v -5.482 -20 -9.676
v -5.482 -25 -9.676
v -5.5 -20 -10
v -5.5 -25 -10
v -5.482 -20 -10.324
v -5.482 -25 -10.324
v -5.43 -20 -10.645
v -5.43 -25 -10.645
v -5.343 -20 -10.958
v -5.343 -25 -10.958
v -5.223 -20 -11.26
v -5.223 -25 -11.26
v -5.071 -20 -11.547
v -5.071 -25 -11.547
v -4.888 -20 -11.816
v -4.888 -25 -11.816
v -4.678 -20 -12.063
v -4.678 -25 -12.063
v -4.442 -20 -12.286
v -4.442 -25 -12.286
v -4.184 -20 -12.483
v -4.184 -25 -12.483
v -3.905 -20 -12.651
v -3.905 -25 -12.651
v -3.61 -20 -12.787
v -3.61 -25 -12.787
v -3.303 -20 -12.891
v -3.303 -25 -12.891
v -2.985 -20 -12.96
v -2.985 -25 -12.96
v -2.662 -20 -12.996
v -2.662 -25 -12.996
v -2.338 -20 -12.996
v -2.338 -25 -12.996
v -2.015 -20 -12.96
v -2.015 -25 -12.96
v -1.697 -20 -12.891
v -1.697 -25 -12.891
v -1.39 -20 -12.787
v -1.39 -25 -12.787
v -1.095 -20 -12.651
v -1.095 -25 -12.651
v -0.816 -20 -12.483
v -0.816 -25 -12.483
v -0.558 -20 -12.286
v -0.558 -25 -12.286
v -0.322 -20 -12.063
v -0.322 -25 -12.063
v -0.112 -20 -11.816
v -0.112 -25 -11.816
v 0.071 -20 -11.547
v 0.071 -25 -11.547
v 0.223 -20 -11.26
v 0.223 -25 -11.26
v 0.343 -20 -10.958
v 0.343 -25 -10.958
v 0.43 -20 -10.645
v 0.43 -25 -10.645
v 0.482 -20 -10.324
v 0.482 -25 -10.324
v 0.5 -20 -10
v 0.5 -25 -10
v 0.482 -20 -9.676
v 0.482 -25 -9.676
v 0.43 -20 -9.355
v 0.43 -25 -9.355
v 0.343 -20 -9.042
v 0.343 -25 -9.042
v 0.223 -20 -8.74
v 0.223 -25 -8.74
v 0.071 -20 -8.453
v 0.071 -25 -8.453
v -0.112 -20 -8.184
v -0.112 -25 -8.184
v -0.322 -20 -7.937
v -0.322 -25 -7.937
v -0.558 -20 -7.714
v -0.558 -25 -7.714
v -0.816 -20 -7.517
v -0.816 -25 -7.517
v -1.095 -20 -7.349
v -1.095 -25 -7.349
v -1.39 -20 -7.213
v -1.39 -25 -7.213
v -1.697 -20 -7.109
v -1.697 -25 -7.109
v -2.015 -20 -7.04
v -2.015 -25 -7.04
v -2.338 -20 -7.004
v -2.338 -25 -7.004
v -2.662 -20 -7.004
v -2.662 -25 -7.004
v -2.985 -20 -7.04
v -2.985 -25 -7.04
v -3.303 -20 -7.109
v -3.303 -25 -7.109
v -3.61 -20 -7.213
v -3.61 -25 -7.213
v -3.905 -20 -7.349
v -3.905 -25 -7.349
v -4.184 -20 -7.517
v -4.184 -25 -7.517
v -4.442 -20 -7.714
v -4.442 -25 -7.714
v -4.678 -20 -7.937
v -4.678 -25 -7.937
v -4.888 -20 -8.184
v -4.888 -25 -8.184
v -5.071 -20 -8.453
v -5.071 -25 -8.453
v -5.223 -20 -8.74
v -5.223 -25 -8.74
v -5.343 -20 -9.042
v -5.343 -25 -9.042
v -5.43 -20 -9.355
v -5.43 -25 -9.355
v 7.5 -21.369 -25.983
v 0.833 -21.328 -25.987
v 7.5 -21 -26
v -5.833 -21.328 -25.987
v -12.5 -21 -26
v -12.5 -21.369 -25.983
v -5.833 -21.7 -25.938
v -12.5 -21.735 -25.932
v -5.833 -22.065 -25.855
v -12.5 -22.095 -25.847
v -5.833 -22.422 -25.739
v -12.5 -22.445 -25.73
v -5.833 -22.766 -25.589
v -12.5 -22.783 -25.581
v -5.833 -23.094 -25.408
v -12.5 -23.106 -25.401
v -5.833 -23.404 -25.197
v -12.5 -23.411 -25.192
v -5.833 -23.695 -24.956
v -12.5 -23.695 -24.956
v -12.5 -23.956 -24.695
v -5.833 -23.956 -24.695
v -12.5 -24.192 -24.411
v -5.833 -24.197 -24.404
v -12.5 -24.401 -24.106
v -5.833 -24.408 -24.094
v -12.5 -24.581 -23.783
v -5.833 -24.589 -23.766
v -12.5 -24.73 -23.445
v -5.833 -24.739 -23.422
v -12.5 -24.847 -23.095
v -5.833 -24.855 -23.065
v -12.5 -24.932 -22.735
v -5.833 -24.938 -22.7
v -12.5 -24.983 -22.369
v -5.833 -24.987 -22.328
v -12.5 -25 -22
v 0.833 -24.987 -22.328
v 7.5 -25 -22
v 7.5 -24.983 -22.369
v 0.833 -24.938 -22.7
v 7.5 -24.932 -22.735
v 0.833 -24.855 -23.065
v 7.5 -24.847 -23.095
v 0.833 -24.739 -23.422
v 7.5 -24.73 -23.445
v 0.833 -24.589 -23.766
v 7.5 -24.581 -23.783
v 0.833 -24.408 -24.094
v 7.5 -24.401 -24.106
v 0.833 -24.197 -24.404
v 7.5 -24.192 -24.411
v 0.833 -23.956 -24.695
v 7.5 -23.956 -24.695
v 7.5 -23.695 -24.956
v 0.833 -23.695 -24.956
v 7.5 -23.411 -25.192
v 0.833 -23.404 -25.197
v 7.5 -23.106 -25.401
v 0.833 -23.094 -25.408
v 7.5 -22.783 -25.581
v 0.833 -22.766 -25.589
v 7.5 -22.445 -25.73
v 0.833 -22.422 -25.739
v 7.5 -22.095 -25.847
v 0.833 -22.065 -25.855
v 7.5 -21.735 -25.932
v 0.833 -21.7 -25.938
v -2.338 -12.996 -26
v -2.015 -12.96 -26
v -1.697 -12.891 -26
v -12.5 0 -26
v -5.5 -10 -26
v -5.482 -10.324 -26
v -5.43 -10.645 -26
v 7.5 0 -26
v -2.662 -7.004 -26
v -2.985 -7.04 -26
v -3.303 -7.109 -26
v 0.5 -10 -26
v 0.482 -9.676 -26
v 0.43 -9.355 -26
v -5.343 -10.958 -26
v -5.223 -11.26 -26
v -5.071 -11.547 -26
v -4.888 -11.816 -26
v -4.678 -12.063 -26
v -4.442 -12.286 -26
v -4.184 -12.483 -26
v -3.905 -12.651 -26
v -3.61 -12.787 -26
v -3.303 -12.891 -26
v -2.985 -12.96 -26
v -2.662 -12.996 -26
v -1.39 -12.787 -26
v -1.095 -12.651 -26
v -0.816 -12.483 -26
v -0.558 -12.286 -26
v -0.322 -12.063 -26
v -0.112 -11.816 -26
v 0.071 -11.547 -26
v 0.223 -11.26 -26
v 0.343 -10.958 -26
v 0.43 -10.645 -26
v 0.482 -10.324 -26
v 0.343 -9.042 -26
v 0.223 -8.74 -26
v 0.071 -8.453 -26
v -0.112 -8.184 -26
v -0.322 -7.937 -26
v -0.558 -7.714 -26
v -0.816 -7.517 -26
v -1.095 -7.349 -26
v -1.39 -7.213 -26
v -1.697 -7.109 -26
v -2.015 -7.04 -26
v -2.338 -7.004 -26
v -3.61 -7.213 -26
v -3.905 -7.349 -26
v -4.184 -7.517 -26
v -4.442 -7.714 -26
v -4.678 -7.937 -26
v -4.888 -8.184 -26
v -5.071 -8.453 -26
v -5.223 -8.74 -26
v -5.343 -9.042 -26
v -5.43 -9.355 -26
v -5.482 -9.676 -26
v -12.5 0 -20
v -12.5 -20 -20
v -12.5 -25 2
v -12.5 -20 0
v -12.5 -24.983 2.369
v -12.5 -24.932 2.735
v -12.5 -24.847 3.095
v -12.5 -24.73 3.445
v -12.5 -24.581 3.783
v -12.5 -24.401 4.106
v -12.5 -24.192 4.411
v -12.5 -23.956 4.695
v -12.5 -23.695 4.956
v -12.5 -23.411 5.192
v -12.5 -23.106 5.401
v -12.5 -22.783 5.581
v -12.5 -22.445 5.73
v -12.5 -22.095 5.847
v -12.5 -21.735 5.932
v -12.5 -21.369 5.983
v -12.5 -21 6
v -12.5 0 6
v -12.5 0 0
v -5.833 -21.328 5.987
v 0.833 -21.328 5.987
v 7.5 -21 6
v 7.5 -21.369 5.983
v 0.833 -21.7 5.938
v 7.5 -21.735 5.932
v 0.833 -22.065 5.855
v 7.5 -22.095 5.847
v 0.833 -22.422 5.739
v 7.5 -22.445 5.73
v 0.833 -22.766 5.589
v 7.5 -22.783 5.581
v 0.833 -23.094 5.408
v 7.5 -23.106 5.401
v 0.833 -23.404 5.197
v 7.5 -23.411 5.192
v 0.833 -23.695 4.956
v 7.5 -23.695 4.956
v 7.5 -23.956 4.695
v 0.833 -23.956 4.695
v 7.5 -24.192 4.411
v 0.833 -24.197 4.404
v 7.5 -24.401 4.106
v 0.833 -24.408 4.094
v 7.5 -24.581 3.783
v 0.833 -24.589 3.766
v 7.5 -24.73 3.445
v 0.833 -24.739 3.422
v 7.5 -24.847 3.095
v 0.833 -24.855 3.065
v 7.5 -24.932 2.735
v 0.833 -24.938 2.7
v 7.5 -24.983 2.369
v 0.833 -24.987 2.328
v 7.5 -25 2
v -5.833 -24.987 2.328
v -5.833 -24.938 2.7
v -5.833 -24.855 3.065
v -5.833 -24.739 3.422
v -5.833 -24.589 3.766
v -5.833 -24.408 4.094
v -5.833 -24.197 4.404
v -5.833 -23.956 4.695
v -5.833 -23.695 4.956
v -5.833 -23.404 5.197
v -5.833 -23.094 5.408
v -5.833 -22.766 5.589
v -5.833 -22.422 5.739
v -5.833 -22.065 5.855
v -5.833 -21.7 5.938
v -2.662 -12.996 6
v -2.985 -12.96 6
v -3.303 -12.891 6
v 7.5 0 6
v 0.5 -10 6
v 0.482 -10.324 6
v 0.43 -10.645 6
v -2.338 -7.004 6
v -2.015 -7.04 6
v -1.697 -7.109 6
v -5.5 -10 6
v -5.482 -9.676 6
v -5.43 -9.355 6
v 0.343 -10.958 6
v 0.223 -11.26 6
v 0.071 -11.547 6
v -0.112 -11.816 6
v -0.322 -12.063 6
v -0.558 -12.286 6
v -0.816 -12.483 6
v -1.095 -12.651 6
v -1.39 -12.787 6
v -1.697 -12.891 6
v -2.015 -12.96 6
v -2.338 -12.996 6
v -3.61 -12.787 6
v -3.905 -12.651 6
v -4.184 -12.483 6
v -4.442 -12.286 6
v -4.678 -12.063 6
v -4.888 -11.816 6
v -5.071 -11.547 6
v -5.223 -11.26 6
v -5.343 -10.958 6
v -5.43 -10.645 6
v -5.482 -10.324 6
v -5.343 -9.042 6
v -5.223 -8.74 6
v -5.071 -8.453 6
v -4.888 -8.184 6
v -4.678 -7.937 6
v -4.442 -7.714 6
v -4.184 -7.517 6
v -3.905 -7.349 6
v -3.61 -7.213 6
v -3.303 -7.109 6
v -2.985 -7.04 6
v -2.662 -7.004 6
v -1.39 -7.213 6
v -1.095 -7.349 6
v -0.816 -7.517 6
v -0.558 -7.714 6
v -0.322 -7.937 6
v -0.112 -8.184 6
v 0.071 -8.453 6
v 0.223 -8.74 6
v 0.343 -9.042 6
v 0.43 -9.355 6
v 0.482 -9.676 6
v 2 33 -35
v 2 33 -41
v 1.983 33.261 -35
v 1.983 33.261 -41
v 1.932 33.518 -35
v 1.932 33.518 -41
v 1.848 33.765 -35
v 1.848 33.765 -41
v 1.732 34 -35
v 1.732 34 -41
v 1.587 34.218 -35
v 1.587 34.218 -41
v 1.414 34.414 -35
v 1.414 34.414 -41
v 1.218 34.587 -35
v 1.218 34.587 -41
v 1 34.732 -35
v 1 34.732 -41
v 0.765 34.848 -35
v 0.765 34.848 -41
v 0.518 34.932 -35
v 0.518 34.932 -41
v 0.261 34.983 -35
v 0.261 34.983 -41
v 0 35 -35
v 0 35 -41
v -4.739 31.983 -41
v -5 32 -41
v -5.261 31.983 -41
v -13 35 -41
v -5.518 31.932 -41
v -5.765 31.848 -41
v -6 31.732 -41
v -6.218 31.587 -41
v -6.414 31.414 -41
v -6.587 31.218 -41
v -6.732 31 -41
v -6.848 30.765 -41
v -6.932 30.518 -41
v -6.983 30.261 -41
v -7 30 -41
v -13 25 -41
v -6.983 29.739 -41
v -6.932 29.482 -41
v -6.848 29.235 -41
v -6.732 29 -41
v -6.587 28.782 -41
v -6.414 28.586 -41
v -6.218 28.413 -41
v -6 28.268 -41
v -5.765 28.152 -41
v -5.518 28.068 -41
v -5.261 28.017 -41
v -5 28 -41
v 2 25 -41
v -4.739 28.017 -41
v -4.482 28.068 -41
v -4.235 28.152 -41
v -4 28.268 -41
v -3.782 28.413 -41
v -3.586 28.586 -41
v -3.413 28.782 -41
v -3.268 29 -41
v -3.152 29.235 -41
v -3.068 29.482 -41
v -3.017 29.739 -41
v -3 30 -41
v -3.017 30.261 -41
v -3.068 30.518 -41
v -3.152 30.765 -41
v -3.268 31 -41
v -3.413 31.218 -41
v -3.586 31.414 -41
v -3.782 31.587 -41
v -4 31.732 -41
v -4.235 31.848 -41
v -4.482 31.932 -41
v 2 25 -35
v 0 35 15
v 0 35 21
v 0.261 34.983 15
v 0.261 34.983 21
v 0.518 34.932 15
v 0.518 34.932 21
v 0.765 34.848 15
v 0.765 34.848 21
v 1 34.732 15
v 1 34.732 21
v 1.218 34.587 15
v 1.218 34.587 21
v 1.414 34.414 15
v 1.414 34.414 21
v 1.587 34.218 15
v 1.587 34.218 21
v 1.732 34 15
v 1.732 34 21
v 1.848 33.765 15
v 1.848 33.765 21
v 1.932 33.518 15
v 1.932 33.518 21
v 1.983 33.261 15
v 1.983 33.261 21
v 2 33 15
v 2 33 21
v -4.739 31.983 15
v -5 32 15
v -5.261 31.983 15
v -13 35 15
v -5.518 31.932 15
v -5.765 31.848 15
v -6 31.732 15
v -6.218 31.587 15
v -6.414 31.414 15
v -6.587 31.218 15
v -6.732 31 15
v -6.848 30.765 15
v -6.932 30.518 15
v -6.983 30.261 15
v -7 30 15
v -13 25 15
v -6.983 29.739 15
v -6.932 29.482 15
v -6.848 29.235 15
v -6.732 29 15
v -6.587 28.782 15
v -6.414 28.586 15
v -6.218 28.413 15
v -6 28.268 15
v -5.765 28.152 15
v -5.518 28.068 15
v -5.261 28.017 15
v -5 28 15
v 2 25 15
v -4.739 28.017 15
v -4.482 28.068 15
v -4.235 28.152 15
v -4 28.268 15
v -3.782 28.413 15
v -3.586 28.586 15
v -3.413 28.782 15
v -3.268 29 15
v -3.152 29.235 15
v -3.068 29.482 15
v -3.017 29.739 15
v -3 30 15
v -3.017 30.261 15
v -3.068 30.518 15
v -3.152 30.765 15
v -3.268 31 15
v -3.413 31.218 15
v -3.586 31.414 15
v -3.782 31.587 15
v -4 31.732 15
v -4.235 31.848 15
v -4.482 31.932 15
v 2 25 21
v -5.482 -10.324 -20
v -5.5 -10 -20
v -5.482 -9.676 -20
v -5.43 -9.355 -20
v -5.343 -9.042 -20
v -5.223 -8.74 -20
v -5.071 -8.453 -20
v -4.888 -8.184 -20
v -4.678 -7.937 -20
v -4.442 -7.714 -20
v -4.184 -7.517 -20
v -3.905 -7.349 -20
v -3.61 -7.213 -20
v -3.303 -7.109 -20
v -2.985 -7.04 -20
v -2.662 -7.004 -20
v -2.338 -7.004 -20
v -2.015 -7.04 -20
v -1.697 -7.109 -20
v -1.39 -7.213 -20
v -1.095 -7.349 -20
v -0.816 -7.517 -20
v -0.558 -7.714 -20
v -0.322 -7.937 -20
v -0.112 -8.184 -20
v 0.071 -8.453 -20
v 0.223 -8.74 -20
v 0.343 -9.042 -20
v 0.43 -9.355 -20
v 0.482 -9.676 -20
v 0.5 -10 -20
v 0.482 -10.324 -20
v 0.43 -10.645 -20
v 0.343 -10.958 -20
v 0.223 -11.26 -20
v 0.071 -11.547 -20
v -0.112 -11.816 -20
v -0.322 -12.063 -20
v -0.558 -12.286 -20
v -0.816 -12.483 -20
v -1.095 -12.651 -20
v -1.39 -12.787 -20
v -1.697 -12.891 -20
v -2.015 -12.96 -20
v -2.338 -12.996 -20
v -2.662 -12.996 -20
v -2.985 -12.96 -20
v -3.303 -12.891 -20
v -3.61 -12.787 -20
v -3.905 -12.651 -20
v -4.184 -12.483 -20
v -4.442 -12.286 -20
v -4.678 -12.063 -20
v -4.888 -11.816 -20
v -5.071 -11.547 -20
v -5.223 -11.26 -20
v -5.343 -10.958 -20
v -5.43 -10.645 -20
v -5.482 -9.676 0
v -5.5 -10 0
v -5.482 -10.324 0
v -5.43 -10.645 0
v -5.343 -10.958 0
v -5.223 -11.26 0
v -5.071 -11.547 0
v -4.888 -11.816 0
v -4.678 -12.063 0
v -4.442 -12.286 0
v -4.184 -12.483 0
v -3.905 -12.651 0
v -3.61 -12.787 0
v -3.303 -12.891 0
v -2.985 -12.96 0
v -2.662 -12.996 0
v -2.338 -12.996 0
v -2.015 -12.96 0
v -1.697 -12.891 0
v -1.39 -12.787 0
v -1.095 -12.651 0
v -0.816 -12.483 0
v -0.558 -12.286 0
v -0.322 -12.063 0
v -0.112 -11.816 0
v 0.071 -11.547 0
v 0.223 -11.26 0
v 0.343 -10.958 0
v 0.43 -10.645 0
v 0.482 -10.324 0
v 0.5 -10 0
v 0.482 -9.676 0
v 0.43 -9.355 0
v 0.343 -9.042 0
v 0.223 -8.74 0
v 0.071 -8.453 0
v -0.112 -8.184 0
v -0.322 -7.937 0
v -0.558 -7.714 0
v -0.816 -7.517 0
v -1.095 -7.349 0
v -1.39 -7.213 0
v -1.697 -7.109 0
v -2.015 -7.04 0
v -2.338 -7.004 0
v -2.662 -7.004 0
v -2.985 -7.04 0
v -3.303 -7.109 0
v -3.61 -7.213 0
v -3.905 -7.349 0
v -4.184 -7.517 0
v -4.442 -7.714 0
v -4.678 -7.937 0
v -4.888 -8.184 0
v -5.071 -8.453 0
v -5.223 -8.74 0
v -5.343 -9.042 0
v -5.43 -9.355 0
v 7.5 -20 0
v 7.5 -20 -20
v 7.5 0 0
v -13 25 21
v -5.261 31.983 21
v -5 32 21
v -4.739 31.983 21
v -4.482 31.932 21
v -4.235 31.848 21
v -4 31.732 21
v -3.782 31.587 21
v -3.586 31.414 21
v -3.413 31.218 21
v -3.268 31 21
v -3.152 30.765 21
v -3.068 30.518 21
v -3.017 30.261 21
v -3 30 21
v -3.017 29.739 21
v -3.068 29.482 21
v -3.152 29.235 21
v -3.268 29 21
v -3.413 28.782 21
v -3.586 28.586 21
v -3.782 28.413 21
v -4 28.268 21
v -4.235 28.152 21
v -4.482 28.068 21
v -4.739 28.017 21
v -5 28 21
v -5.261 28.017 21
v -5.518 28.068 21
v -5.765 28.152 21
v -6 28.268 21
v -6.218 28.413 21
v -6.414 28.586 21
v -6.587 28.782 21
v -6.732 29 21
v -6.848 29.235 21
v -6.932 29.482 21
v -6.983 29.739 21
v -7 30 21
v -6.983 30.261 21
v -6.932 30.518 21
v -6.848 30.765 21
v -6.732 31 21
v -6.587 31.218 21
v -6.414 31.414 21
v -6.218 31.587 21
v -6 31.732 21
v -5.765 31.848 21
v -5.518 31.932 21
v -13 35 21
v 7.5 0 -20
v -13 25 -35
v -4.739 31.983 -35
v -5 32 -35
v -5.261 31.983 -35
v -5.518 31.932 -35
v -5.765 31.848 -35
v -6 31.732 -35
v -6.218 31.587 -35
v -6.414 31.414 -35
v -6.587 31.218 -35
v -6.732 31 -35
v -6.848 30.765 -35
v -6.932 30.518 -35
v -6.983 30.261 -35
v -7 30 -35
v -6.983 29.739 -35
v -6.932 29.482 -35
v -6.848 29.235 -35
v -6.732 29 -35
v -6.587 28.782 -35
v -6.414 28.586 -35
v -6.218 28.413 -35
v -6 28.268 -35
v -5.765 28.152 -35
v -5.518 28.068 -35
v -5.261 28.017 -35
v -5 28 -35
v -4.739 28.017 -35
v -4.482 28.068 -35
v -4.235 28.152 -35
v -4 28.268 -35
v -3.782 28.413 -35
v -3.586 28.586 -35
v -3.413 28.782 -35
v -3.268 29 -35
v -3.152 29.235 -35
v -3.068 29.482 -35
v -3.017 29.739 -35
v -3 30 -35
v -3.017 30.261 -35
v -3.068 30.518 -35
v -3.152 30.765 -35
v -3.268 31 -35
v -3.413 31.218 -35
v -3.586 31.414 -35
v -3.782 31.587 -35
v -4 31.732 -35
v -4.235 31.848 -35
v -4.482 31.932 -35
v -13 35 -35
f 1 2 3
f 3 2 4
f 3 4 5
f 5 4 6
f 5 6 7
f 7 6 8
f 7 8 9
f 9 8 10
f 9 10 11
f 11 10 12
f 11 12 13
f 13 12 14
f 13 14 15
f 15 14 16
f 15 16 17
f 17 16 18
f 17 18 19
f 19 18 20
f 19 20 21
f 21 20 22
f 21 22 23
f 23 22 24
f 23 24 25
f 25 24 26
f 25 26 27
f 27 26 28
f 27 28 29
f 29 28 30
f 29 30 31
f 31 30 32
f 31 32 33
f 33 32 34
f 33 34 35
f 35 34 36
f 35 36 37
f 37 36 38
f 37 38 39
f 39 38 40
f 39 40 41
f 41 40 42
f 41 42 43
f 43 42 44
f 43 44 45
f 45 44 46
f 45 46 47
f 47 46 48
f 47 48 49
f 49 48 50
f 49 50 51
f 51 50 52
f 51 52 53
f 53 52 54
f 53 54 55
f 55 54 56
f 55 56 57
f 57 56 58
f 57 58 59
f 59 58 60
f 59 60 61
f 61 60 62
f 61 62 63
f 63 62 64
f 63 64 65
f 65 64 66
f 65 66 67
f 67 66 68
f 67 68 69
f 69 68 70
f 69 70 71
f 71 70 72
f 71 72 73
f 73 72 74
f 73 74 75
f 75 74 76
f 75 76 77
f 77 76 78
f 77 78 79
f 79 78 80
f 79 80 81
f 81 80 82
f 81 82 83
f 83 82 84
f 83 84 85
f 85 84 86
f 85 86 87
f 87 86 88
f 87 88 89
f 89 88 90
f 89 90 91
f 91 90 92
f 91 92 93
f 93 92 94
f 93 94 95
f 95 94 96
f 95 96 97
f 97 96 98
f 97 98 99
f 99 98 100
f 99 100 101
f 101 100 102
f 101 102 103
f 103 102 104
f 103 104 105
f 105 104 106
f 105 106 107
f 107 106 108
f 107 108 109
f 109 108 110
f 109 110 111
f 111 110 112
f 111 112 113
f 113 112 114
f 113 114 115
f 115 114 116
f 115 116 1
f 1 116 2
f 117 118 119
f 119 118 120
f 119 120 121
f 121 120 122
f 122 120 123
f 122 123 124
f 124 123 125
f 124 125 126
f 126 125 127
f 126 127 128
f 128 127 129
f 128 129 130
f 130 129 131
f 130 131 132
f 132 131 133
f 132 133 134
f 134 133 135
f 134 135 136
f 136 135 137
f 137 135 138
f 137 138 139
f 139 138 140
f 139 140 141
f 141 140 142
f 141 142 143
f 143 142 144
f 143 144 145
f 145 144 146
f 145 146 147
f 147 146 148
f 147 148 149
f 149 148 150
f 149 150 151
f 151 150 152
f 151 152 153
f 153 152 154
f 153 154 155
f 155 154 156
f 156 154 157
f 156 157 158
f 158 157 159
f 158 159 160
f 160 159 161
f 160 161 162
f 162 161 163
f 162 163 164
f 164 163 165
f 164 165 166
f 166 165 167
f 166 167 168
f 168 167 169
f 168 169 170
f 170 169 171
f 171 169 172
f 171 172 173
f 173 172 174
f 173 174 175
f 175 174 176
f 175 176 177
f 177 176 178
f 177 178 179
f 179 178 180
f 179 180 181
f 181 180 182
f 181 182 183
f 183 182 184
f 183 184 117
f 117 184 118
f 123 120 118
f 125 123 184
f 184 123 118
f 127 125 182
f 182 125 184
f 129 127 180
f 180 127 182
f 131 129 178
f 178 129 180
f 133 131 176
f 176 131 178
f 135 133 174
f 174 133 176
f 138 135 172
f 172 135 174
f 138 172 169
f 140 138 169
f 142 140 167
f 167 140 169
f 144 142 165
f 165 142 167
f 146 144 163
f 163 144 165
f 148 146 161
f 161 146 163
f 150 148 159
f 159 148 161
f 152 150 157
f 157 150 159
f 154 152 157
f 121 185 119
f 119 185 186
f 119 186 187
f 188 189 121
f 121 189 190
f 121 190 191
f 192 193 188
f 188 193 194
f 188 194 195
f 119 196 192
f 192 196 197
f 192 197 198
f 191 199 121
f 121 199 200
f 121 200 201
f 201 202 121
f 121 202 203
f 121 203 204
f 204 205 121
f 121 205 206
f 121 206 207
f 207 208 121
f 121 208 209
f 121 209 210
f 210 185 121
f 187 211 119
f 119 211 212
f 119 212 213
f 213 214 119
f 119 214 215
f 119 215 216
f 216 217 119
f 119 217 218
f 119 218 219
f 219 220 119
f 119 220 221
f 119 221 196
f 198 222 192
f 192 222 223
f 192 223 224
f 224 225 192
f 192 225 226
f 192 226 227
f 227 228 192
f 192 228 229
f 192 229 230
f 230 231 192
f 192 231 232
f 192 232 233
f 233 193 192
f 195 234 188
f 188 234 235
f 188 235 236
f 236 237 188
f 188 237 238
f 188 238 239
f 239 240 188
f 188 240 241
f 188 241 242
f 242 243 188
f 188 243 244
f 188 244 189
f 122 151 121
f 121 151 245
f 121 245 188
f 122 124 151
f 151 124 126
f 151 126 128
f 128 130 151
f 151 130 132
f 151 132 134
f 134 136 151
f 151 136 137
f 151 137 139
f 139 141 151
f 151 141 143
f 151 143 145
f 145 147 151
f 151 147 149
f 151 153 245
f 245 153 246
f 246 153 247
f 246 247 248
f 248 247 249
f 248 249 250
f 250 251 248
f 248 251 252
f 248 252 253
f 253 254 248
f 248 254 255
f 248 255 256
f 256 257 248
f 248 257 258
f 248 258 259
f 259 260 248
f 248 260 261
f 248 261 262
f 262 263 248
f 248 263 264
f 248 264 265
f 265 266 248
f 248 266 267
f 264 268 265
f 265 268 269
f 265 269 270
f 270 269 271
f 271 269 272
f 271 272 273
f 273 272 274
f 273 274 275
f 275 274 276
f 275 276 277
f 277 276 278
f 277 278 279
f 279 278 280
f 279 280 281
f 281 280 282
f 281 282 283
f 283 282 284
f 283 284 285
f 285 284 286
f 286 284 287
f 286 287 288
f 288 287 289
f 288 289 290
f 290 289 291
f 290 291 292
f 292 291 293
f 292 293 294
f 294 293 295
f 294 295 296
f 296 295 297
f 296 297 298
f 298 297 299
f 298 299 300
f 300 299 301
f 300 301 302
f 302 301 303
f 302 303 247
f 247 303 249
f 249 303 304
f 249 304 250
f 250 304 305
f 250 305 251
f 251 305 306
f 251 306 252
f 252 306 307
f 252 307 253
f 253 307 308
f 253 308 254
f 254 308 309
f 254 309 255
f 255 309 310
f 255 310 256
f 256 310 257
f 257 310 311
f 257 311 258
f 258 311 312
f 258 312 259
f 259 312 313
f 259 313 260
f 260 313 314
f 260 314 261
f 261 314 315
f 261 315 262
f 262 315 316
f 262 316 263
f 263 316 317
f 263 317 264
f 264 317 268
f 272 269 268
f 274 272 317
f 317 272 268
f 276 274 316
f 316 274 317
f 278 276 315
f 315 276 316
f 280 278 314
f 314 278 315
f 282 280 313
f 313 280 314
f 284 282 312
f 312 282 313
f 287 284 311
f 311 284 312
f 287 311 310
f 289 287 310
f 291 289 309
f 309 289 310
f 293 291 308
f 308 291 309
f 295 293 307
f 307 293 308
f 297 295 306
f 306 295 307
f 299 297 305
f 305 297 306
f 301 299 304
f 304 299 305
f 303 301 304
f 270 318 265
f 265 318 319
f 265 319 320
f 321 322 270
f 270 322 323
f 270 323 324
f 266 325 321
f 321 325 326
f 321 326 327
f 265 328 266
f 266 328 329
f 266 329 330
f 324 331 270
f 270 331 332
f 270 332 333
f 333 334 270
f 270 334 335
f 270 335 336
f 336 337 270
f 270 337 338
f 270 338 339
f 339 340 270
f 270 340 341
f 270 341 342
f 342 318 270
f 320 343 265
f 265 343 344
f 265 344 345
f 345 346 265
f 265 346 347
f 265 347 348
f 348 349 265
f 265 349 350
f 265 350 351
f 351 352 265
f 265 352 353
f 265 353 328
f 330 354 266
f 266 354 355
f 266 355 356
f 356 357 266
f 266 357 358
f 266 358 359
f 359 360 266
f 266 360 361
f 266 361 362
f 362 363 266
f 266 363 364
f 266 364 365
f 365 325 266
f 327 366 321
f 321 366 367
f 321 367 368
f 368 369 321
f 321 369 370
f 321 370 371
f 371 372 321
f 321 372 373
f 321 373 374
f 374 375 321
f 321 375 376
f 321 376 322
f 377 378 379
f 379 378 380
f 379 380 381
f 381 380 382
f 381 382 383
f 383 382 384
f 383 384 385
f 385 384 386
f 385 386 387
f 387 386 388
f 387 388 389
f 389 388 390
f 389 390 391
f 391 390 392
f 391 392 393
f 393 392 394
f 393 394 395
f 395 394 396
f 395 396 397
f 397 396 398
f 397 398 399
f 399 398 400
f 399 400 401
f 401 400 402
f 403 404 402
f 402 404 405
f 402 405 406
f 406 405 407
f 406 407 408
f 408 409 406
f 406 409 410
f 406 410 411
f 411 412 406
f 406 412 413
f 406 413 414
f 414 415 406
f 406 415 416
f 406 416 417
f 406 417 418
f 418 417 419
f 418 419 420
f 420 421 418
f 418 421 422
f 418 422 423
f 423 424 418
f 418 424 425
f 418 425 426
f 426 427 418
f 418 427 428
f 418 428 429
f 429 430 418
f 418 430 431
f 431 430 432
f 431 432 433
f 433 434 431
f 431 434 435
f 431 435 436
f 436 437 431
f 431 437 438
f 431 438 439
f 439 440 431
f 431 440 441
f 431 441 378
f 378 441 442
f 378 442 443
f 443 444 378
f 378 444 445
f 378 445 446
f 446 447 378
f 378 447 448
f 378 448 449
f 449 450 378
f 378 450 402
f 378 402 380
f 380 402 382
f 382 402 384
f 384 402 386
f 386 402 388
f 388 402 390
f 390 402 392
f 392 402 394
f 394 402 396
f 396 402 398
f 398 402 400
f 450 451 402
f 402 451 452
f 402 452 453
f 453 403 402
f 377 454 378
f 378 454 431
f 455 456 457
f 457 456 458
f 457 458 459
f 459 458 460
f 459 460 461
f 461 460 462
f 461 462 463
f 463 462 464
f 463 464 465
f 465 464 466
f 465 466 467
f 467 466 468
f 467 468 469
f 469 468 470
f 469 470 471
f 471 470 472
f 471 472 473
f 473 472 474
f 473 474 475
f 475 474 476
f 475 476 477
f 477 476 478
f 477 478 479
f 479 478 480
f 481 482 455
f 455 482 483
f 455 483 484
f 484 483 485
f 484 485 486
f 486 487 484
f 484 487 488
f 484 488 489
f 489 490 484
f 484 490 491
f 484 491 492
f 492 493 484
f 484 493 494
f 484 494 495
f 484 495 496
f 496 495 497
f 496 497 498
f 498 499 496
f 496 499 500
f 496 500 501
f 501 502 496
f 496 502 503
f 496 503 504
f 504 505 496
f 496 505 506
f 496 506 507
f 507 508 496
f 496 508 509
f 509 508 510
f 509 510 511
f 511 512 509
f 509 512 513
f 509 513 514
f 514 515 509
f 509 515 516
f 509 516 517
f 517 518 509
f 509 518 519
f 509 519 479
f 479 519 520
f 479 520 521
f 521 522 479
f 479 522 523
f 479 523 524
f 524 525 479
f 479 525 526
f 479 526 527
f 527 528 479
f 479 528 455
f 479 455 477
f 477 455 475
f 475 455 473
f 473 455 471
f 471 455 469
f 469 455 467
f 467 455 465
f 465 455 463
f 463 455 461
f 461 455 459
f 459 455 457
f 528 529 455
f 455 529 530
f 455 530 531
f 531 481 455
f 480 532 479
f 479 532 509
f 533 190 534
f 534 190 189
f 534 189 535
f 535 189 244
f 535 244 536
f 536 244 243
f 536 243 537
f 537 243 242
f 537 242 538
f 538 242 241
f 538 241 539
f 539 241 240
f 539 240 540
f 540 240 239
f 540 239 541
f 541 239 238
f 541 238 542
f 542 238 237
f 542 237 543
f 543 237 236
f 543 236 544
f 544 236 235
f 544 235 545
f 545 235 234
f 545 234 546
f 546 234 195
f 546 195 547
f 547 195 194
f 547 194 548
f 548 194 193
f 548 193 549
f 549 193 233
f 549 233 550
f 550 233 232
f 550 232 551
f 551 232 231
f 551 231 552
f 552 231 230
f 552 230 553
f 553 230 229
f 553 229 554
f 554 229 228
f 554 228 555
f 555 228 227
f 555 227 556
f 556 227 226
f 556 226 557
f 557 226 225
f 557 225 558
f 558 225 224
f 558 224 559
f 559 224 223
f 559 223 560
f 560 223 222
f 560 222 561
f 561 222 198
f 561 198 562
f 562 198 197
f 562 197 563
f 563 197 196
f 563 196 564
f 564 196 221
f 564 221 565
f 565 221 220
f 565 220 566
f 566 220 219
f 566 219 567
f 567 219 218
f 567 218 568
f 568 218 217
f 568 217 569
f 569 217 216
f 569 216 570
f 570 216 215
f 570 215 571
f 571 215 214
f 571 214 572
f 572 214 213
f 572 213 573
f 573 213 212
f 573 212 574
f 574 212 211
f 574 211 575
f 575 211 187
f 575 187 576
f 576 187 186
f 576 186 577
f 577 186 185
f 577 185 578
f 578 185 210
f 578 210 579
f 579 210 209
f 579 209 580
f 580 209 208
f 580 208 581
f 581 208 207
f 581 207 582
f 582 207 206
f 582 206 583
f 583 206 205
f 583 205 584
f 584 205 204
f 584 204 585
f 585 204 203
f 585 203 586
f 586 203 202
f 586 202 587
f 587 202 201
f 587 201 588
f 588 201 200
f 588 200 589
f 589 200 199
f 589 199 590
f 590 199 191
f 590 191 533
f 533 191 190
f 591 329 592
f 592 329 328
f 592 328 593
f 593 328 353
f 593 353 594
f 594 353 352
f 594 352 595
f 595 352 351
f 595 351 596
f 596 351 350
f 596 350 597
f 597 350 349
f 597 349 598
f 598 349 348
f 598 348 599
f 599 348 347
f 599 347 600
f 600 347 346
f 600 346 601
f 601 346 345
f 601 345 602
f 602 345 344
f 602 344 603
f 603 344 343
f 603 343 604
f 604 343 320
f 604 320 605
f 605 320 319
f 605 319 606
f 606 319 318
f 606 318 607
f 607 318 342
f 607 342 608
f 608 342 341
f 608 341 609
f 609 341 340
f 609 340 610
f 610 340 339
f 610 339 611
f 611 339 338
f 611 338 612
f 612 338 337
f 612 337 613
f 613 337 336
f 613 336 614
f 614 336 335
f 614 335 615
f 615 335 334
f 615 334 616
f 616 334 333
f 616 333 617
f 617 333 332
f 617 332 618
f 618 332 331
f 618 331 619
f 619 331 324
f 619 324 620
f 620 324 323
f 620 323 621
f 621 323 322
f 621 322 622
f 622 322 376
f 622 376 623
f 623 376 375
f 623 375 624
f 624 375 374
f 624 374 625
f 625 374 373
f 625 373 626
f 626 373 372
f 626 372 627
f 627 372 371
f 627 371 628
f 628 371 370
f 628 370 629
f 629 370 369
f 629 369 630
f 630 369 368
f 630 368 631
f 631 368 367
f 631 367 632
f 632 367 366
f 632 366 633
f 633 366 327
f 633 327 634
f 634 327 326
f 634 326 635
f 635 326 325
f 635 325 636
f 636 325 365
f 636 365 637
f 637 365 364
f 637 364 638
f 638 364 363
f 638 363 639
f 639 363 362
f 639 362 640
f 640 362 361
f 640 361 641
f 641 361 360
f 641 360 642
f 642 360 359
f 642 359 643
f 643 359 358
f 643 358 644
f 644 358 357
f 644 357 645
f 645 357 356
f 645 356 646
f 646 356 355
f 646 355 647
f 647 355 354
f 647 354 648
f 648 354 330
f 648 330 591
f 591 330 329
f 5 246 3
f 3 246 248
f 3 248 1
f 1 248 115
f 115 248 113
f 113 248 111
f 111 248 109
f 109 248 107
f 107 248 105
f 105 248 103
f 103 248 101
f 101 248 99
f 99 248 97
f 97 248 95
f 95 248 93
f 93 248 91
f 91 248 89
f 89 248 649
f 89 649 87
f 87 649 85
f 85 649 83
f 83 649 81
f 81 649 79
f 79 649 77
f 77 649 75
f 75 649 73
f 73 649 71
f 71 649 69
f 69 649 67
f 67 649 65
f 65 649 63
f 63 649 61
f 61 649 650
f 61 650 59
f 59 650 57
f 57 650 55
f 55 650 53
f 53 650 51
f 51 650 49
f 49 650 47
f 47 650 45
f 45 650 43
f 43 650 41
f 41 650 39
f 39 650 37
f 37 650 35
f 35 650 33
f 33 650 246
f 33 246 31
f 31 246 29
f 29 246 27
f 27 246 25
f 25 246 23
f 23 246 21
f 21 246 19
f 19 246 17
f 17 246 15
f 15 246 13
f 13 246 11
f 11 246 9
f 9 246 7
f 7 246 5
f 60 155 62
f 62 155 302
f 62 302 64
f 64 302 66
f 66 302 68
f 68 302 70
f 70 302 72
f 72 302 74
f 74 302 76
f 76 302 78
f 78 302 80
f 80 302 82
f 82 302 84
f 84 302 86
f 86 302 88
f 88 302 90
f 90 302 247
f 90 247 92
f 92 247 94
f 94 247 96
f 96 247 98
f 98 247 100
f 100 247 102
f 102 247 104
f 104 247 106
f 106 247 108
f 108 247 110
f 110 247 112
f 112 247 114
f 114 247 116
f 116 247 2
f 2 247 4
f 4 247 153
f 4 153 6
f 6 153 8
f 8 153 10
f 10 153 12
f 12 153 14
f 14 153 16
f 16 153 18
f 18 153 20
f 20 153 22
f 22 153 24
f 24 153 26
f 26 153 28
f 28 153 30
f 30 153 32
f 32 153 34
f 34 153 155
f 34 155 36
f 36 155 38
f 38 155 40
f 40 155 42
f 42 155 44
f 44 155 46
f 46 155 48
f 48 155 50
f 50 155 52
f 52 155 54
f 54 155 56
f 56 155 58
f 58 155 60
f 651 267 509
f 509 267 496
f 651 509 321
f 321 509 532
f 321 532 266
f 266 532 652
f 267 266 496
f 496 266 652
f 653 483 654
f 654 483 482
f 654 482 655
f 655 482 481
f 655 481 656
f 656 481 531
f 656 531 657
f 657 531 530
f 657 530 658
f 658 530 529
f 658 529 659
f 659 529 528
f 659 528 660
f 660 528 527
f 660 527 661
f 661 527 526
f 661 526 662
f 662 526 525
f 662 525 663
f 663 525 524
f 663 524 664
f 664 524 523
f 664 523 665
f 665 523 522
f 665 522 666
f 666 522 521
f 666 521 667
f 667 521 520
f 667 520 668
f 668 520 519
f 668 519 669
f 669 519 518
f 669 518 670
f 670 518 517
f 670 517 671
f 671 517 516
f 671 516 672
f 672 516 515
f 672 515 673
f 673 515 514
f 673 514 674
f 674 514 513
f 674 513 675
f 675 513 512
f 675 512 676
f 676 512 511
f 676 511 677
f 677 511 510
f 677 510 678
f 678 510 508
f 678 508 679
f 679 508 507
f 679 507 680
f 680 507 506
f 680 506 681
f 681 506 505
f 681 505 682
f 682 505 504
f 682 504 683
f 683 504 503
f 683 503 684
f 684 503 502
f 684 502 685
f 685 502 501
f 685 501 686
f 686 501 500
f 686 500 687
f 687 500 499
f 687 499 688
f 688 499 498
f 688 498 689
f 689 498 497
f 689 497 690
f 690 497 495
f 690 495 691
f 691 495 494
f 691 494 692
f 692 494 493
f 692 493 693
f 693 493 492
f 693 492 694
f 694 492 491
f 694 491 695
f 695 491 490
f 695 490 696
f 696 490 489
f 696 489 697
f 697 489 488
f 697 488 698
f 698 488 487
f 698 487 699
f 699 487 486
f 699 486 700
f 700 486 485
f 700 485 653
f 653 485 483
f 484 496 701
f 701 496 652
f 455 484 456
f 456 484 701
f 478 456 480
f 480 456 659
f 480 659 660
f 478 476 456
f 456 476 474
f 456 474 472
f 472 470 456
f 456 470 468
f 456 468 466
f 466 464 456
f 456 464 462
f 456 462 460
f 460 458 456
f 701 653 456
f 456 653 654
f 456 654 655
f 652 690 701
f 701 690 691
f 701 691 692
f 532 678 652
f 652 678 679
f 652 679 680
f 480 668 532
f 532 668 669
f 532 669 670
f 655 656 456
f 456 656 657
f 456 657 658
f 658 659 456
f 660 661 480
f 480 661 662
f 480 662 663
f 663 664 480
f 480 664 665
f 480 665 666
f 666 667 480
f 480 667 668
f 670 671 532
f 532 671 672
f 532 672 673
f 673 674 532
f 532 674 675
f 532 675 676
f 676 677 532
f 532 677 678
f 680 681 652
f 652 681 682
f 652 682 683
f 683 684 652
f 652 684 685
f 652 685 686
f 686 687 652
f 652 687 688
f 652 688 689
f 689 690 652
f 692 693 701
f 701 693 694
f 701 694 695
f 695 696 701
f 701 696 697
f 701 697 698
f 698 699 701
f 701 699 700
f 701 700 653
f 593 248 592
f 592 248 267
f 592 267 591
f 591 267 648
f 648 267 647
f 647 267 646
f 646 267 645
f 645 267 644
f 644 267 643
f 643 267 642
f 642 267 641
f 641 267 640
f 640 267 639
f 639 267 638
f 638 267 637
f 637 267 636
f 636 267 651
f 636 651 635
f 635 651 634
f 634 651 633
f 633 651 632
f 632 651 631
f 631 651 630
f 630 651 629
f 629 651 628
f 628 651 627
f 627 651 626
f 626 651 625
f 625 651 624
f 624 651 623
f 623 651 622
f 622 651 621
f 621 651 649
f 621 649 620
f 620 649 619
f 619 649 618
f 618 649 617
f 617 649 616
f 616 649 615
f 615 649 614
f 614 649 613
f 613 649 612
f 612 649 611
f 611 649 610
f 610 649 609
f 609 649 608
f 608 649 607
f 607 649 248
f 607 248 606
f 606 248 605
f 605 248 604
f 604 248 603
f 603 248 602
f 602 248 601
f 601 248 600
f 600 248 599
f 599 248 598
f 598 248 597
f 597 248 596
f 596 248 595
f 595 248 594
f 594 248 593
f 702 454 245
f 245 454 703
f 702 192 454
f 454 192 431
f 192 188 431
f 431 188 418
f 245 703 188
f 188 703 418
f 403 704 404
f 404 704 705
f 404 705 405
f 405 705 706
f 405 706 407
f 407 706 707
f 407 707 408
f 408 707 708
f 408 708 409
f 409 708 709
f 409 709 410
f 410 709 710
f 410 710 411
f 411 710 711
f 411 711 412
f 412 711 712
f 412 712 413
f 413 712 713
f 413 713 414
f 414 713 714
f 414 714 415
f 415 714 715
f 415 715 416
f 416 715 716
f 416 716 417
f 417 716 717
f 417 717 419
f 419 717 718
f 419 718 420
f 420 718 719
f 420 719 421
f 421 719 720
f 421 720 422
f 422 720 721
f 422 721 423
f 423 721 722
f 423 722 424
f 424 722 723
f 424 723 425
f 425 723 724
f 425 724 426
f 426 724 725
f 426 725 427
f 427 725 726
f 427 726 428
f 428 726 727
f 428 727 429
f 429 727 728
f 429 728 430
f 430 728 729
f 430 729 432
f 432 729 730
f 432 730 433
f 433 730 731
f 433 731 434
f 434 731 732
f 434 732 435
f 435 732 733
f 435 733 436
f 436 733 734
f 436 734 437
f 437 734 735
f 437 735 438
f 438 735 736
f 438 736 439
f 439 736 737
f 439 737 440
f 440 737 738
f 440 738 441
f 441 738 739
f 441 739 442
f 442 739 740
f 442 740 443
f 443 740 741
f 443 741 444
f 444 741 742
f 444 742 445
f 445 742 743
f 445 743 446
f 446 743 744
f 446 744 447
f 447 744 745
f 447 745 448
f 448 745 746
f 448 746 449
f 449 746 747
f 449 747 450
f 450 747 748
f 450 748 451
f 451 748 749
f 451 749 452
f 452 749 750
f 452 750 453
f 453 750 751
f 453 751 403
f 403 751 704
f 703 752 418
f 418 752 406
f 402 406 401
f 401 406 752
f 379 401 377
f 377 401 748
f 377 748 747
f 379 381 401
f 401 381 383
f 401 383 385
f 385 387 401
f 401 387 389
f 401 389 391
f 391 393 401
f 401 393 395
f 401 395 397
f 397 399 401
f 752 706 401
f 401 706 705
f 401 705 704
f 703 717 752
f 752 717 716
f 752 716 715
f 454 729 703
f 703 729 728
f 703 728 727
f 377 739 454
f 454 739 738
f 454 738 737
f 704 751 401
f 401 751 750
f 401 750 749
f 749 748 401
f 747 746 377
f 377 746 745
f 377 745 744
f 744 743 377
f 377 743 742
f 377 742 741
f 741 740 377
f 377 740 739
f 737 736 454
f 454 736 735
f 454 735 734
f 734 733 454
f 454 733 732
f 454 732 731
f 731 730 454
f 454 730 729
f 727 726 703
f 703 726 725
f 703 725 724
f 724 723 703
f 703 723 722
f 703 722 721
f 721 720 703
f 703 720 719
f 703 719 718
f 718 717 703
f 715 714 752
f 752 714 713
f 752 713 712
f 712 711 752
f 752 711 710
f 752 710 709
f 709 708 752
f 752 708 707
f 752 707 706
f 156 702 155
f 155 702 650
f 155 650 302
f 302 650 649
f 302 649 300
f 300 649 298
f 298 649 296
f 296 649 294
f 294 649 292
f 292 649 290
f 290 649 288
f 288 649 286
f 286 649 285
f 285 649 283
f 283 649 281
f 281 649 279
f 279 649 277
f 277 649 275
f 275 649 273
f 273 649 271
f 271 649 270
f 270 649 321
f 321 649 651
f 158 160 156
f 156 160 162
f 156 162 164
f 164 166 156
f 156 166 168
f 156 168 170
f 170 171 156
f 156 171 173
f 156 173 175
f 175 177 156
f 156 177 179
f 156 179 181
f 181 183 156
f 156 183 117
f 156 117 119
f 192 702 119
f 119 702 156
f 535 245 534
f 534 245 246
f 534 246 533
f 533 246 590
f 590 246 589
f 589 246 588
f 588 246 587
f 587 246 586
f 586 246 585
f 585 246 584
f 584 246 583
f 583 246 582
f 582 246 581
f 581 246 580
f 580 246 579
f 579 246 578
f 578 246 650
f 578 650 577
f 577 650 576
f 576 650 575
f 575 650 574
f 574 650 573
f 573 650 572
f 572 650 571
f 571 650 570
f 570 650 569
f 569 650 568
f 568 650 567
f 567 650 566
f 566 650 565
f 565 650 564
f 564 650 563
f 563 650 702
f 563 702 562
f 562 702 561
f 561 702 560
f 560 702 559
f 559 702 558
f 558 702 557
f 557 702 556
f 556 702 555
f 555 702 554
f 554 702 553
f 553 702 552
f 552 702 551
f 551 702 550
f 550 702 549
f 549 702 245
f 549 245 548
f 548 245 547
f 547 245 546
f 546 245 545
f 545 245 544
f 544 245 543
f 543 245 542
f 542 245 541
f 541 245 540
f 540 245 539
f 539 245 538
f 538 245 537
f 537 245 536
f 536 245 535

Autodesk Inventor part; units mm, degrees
ref_plane "YZ Plane" through (0, 0, 0) normal (1, 0, 0) x (0, 1, 0)
ref_plane "XZ Plane" through (0, 0, 0) normal (0, 1, 0) x (-1, 0, 0)
ref_plane "XY Plane" through (0, 0, 0) normal (0, 0, 1) x (1, 0, 0)
sketch "Sketch1" plane through (0, 0, 0) normal (0, 0, 1) x (1, 0, 0)
  circle A0 centre (-47.5, -10) radius 3 projected
  circle A1 centre (-5, 30) radius 2 projected
  line L0 (-47.5, -10) -> (-2.5, -10)
  line L1 (7.5, 0) -> (-12.5, 0)
  line L2 (-12.5, 0) -> (-12.5, -20)
  line L3 (-12.5, -20) -> (7.5, -20)
  line L4 (7.5, -20) -> (7.5, 0)
  line L5 (7.5, 0) -> (-12.5, -20) construction
  line L6 (-12.5, 0) -> (7.5, -20) construction
  point P0 (0, 0)
  dimension "d0" = 45
  dimension "d1" = 20
  dimension "d2" = 20
extrude "Extrusion1" add sketch "Sketch1" along normal blind 6 contours L4 L3 L2 L1
ref_plane "Work Plane1" through (0, 0, -20) normal (0, 0, -1) x (-1, 0, 0)
sketch "Sketch2" plane through (0, 0, -20) normal (0, 0, -1) x (-1, 0, 0)
  line L0 (-7.5, -20) -> (-7.5, 0) projected
  line L1 (-7.5, 0) -> (12.5, 0) projected
  line L2 (12.5, 0) -> (12.5, -20) projected
  line L3 (12.5, -20) -> (-7.5, -20) projected
  point P0 (0, 0)
  dimension "d0" = 45
  dimension "d1" = 20
  dimension "d2" = 20
extrude "Extrusion2" add sketch "Sketch2" along normal blind 6
ref_plane "Work Plane2" through (-8, 25, 15) normal (0, 0, 1) x (0, 1, 0)
sketch "Sketch3" plane through (-8, 25, 15) normal (0, 0, 1) x (0, 1, 0)
  circle A0 centre (5, -3) radius 2 projected
  arc A1 (8, -10) -> (10, -8) centre (8, -8) ccw projected
  line L0 (10, -8) -> (10, -3) projected
  line L1 (10, -3) -> (10, 5) projected
  line L2 (0, 5) -> (10, 5) projected
  line L3 (0, 5) -> (0, -3) projected
  line L4 (0, -3) -> (0, -8) projected
  arc A2 (0, -8) -> (2, -10) centre (2, -8) ccw projected
  line L5 (8, -10) -> (2, -10) projected
  circle A3 centre (5, -3) radius 2 projected
  line L6 (0, 4) -> (10, 4)
  line L7 (10, 4) -> (10, -10)
  line L8 (10, -10) -> (0, -10)
  line L9 (0, -10) -> (0, 4)
  line L10 (0, 4) -> (10, -10) construction
  line L11 (10, 4) -> (0, -10) construction
  point P0 (-25, -8)
  point P1 (0, -8)
  point P2 (2, -10)
  point P3 (10, -8)
  dimension "d7" = 10
  dimension "d8" = 14
extrude "Extrusion3" add sketch "Sketch3" along normal blind 6
sketch "Sketch4" plane through (-13, 25, 15) normal (0, -1, 0) x (1, 0, 0)
  line L0 (0, 0) -> (15, 0) projected
  line L1 (15, 0) -> (15, 6) projected
  line L2 (0, 6) -> (15, 6) projected
  line L3 (0, 0) -> (0, 6) projected
  point P0 (13, -15)
sketch "Sketch5" plane through (-12.5, 0, 0) normal (0, 1, 0) x (1, 0, 0)
  line L0 (20, 0) -> (0, 0) projected
  line L1 (0, 0) -> (0, -6) projected
  line L2 (20, -6) -> (0, -6) projected
  line L3 (20, 0) -> (20, -6) projected
  point P0 (12.5, 0)
loft "Loft1" add section 1 edges at (-2.5, 0, 0) (-12.5, 0, 3) (-2.5, 0, 6) (7.5, 0, 3) section 2 edges at (-5.5, 25, 15) (2, 25, 18) (-5.5, 25, 21) (-13, 25, 18)
ref_plane "Work Plane3" through (0, 0, -10) normal (0, 0, 1) x (1, 0, 0)
mirror "Mirror1" about plane through (0, 0, -10) normal (0, 0, 1) of "Extrusion3", "Loft1"
sketch "Sketch7" plane through (-12.5, -20, 0) normal (0, -1, 0) x (1, 0, 0)
  line L0 (0, 0) -> (20, 0) projected
  line L1 (20, 0) -> (20, 6) projected
  line L2 (0, 6) -> (20, 6) projected
  line L3 (0, 0) -> (0, 6) projected
  line L4 (20, -20) -> (0, -20) projected
  line L5 (0, -20) -> (0, -26) projected
  line L6 (20, -26) -> (0, -26) projected
  line L7 (20, -20) -> (20, -26) projected
  line L8 (20, -20) -> (20, -26) projected
  line L9 (0, 6) -> (20, 6)
  line L10 (20, 6) -> (20, -26)
  line L11 (20, -26) -> (0, -26)
  line L12 (0, -26) -> (0, 6)
  point P0 (12.5, 0)
extrude "Extrusion5" add sketch "Sketch7" along normal blind 5
sketch "Sketch8" plane through (0, 0, 6) normal (0, 0, 1) x (1, 0, 0)
  line L0 (-12.5, -20) -> (7.5, -20) projected
  line L1 (-2.5, -20) -> (-2.5, -10)
  circle A0 centre (-2.5, -10) radius 3
  point P0 (0, 0)
  dimension "d23" = 10
  dimension "d24" = 6
extrude "Extrusion6" cut sketch "Sketch8" against normal blind 40
fillet "Fillet1" radius 2 2 edges at (2, 35, 18) (2, 35, -38)
fillet "Fillet2" radius 4 2 edges at (-2.5, -25, 6) (-2.5, -25, -26)
sketch "Sketch9" plane through (-12.5, -25, 0) normal (0, -1, 0) x (1, 0, 0)
  line L0 (20, -22) -> (0, -22) projected
  line L1 (20, -22) -> (20, 2) projected
  line L2 (0, 2) -> (20, 2) projected
  line L3 (0, 2) -> (0, -22) projected
  line L4 (0, 2) -> (0, -22) projected
  line L5 (0, -22) -> (20, 2)
  line L6 (0, 2) -> (20, 2) projected
  line L7 (0, 2) -> (20, -22)
  circle A0 centre (10, -10) radius 3
  point P0 (12.5, 0)
  dimension "d29" = 6
extrude "Extrusion7" cut sketch "Sketch9" against normal blind 40 contours A0 L5 L7 | L7 L5 A0 | A0 L7 L5 | L5 L7 A0
properties part number "2020_fixer2"
